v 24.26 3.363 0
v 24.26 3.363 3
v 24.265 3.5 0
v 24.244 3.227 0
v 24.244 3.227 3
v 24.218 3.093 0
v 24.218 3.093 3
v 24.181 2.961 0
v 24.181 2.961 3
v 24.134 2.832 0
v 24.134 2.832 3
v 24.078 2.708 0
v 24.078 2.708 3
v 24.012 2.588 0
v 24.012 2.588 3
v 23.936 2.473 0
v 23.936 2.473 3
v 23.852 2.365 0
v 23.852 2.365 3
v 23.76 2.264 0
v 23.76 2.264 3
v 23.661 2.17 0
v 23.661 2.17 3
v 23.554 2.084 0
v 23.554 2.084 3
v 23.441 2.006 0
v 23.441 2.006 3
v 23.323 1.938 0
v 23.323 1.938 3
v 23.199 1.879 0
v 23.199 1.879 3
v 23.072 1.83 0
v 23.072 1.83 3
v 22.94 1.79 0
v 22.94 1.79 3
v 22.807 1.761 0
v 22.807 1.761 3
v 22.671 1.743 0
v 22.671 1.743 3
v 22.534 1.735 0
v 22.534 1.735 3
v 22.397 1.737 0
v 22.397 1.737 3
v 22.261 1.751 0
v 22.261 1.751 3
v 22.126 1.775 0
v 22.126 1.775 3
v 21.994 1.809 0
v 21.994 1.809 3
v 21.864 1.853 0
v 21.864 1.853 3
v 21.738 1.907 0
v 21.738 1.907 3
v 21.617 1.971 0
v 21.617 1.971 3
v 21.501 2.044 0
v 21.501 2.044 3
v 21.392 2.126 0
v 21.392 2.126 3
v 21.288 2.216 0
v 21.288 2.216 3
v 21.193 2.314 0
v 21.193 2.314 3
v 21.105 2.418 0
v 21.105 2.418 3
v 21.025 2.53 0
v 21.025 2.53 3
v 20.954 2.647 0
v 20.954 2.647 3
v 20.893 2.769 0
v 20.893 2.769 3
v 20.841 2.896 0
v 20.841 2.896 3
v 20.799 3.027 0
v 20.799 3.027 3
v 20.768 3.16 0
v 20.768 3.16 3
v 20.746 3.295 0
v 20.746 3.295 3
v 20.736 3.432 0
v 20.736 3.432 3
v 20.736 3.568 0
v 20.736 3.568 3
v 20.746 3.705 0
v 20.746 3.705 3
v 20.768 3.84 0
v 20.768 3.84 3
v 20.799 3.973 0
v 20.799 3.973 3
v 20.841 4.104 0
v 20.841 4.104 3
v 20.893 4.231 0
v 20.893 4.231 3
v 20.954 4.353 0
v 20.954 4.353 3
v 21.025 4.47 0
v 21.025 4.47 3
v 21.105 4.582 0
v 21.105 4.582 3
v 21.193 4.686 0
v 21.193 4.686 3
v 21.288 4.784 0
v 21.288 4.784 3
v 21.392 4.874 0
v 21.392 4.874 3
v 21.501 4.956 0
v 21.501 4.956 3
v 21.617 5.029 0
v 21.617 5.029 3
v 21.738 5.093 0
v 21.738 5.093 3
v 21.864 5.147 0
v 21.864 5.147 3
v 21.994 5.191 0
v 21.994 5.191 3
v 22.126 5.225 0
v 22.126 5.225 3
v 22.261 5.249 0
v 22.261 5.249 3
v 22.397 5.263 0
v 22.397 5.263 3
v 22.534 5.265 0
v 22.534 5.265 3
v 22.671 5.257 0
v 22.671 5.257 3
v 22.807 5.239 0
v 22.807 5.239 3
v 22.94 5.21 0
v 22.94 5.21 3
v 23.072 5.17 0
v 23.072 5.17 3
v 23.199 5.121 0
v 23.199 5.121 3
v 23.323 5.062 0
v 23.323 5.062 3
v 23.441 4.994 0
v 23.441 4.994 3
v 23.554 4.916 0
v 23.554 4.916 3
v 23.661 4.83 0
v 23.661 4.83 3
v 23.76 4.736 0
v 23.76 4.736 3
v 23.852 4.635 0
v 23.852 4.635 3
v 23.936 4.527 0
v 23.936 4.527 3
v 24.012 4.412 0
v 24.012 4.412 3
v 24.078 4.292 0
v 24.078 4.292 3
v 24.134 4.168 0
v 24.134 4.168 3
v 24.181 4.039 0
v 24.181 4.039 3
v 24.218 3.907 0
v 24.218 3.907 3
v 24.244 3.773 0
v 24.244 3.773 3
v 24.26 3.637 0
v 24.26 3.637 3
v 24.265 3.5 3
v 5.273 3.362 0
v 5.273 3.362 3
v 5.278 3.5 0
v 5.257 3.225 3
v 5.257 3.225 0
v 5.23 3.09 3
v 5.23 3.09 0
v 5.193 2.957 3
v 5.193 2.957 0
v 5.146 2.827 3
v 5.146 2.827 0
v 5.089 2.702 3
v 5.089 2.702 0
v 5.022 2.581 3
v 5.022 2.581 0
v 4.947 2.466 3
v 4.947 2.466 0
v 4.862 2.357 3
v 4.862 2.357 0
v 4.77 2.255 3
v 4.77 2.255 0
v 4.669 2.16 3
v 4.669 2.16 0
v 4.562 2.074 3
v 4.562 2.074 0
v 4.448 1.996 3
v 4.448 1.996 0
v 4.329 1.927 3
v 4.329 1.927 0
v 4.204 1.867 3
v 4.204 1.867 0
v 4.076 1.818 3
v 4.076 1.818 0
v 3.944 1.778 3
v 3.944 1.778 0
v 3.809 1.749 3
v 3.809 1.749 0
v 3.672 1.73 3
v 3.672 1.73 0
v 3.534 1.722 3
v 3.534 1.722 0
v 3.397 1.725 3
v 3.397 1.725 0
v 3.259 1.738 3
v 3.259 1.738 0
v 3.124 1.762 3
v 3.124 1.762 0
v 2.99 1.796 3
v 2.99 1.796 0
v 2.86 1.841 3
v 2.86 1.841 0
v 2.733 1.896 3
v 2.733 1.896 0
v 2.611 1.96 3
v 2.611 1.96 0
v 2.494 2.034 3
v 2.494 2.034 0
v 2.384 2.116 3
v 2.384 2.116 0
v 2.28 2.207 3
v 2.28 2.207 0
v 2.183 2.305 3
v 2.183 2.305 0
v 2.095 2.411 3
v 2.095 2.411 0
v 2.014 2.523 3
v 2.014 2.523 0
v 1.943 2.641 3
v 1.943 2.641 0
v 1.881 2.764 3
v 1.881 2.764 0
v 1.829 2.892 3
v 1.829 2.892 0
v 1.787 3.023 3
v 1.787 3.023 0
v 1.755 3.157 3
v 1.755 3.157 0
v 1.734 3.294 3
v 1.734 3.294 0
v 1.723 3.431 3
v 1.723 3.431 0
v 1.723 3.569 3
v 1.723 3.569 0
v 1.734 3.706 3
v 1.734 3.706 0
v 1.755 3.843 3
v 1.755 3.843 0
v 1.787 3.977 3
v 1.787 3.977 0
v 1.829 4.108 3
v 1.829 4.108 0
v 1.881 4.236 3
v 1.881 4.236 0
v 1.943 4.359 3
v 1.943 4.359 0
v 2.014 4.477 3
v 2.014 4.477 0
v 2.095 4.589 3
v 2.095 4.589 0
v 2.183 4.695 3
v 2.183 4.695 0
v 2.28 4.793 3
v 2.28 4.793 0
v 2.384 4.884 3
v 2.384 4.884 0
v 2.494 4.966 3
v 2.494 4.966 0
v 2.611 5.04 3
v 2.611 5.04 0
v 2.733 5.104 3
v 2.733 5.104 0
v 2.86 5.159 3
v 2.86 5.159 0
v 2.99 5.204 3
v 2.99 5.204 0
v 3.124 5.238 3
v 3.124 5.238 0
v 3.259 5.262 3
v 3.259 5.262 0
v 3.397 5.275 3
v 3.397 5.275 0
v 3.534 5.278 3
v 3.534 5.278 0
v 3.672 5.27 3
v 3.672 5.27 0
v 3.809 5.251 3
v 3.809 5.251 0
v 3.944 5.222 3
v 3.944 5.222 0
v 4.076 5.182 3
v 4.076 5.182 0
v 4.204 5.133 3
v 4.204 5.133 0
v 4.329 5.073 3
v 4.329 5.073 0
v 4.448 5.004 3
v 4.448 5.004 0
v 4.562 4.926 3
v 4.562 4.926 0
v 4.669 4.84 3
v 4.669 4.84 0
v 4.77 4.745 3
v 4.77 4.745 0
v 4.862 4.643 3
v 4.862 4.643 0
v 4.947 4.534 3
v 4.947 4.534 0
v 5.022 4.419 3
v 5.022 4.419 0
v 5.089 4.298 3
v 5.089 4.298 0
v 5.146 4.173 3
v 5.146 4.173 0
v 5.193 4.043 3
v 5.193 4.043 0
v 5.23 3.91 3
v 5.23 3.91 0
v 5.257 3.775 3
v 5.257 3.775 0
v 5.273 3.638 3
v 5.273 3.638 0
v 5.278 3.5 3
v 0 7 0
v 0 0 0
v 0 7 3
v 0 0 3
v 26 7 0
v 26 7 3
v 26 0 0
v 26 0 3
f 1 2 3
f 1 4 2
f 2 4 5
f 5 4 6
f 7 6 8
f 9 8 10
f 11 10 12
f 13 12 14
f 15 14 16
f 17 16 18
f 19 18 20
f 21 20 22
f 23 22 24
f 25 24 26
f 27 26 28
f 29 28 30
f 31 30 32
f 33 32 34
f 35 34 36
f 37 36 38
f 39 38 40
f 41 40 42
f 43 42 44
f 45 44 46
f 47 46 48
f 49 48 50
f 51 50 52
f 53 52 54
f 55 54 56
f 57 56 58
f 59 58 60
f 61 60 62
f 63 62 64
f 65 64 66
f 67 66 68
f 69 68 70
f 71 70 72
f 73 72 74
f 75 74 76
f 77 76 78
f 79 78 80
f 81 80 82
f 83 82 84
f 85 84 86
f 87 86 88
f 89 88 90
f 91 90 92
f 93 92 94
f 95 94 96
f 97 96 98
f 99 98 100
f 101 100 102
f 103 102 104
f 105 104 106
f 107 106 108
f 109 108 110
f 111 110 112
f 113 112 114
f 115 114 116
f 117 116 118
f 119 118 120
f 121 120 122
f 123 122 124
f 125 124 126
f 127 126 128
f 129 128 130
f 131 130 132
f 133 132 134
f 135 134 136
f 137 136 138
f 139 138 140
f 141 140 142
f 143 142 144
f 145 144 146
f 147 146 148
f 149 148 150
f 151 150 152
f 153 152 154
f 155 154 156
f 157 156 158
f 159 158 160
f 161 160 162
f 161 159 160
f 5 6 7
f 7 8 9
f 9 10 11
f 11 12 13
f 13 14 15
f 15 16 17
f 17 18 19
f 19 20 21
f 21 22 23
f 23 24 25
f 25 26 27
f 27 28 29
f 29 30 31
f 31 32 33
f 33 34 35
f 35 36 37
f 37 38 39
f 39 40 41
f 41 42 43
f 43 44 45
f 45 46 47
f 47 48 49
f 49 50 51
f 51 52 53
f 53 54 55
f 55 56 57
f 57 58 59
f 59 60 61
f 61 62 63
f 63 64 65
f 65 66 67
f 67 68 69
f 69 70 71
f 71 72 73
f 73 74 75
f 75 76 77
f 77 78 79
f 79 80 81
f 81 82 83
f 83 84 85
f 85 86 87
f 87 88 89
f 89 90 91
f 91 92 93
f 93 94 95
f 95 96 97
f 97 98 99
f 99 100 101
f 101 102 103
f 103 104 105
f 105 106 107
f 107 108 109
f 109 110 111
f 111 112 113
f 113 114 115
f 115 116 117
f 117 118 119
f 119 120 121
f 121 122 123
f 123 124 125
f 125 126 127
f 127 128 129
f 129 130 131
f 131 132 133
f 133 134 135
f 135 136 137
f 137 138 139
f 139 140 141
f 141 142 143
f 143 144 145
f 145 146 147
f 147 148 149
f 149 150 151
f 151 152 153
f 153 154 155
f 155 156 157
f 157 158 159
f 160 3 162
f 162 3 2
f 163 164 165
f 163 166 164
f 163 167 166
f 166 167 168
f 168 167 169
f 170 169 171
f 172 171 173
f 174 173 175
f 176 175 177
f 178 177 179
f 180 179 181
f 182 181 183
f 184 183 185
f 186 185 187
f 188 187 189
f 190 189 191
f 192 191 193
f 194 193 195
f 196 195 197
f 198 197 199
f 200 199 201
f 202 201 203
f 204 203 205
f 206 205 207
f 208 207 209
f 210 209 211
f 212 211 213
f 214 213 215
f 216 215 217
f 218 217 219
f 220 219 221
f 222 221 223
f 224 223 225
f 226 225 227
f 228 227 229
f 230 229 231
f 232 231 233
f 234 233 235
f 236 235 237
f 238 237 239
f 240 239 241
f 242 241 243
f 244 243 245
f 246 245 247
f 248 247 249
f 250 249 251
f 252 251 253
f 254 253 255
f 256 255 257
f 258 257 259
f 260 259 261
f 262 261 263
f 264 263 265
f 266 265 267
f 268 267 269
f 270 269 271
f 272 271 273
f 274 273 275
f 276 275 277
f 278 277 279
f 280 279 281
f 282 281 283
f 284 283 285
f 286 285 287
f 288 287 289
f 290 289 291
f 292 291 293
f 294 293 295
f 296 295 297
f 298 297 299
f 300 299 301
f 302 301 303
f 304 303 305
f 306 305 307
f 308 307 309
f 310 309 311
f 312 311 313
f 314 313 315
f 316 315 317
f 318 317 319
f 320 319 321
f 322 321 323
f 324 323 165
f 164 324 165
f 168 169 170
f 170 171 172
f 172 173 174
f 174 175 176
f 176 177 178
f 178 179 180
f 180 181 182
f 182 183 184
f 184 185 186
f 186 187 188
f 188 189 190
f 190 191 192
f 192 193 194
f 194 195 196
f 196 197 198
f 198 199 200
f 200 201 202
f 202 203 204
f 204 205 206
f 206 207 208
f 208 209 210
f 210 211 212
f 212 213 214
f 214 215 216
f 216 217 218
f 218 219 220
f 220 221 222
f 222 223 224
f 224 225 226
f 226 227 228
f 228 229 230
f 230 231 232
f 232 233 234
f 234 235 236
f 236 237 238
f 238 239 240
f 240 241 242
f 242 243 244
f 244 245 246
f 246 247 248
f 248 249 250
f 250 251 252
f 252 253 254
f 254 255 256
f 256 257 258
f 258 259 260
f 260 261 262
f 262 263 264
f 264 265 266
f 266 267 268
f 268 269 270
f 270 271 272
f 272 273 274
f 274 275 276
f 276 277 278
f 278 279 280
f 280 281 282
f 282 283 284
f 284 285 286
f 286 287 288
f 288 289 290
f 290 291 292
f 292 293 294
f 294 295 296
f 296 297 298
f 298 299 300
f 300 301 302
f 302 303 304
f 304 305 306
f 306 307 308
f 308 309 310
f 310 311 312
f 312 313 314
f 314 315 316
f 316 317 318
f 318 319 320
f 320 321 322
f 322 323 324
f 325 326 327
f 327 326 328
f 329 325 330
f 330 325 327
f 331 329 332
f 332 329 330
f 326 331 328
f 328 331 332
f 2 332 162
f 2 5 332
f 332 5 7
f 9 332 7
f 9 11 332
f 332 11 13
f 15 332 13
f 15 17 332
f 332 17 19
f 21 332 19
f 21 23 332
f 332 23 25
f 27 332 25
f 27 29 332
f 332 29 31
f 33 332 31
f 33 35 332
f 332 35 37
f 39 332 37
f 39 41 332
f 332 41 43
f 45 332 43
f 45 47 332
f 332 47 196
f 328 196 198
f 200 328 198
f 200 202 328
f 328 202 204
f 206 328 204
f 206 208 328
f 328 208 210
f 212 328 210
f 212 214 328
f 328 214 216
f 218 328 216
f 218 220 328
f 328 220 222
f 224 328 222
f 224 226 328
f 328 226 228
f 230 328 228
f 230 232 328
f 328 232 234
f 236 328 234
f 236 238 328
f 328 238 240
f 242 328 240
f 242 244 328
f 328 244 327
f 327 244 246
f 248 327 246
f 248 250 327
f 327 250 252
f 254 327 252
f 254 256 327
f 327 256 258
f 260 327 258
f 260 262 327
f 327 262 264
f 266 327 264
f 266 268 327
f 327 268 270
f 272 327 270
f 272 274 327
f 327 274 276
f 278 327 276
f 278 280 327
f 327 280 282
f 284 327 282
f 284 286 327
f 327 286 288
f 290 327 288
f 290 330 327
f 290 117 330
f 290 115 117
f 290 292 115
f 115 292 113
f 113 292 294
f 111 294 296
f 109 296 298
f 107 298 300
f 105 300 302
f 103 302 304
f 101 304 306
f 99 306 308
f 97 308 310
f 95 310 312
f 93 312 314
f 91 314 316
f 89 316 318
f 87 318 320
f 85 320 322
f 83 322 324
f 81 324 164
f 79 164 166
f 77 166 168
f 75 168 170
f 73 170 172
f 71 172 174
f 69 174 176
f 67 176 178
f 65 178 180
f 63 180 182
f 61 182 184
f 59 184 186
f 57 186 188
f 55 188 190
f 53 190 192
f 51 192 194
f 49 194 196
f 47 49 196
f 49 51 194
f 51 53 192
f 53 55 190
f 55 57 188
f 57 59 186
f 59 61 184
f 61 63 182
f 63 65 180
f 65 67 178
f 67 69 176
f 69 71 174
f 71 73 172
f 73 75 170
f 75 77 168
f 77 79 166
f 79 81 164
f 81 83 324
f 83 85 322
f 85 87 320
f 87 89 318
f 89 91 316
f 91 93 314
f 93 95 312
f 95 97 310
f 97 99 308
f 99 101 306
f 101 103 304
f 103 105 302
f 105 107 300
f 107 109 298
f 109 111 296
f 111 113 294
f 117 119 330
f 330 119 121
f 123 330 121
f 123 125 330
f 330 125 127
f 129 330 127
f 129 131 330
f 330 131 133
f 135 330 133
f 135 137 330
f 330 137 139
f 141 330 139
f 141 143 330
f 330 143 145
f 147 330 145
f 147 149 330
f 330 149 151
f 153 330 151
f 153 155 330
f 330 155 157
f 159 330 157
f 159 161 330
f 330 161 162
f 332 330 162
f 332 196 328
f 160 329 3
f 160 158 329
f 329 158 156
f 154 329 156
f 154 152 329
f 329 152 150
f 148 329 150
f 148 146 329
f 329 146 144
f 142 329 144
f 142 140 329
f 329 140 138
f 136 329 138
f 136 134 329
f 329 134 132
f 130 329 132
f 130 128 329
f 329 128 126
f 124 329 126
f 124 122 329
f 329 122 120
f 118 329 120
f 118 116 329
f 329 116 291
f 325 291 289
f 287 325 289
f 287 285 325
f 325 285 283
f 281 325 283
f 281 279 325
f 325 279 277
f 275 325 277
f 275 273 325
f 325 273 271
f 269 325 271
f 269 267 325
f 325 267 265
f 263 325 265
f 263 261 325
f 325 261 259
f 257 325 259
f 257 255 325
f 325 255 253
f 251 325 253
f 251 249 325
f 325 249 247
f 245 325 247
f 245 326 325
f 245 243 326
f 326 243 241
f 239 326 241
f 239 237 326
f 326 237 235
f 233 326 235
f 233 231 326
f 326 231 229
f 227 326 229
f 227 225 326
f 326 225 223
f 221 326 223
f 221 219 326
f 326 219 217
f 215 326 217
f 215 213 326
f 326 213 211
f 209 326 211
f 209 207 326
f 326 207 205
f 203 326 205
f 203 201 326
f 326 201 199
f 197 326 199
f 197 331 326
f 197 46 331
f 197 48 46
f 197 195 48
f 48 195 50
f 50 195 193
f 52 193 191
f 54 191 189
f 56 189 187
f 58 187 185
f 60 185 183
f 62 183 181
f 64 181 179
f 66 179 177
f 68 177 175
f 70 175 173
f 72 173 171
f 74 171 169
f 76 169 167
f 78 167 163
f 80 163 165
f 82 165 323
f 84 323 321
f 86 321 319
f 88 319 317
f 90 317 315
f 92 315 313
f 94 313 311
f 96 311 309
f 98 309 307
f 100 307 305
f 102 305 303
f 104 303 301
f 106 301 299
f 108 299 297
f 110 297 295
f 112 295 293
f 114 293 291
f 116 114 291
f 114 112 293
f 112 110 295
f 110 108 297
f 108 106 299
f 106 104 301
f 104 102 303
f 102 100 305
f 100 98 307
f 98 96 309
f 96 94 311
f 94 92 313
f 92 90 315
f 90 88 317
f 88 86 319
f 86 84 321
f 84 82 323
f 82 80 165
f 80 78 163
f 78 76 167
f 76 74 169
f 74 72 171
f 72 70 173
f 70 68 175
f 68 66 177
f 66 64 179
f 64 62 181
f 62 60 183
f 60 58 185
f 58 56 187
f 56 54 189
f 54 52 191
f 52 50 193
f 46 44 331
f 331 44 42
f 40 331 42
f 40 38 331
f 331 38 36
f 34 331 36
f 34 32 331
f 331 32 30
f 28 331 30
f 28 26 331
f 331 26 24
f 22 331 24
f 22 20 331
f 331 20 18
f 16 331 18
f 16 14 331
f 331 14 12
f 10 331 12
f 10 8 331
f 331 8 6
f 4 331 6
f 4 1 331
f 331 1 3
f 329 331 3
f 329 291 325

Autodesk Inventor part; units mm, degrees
ref_plane "YZ Plane" through (0, 0, 0) normal (1, 0, 0) x (0, 1, 0)
ref_plane "XZ Plane" through (0, 0, 0) normal (0, 1, 0) x (-1, 0, 0)
ref_plane "XY Plane" through (0, 0, 0) normal (0, 0, 1) x (1, 0, 0)
sketch "Sketch1" plane through (0, 0, 0) normal (0, 0, 1) x (1, 0, 0)
  line L0 (0, 0) -> (26, 0)
  line L1 (26, 0) -> (26, 7)
  line L2 (26, 7) -> (0, 7)
  line L3 (0, 7) -> (0, 0)
  dimension "d0" = 26
  dimension "d1" = 7
extrude "Extrusion1" add sketch "Sketch1" along normal blind 3
sketch "Sketch2" plane through (0, 0, 3) normal (0, 0, 1) x (1, 0, 0)
  line L0 (0, 0) -> (26, 0) projected
  line L1 (26, 7) -> (0, 7) projected
  line L2 (0, 7) -> (3.5739, 7)
  line L3 (3.5739, 0) -> (0, 0)
  line L4 (0, 0) -> (0, 7)
  line L5 (3.5739, 0) -> (22.546, 0)
  line L6 (22.546, 7) -> (3.5739, 7)
  line L7 (22.546, 7) -> (26, 7)
  line L8 (26, 7) -> (26, 0)
  line L9 (26, 0) -> (22.546, 0)
  line L10 (0, 0) -> (3.4896, 0)
  line L11 (3.4896, 7) -> (0, 7)
  line L12 (0, 7) -> (0, 0)
  line L13 (3.4896, 7) -> (22.4896, 7)
  line L14 (22.4896, 0) -> (3.4896, 0)
  line L15 (22.4896, 0) -> (26, 0)
  line L16 (26, 0) -> (26, 7)
  line L17 (26, 7) -> (22.4896, 7)
  line L18 (0, 0) -> (3.5, 0)
  line L19 (3.5, 0) -> (3.5, 7)
  line L20 (3.5, 7) -> (0, 7)
  line L21 (0, 7) -> (0, 0)
  line L22 (3.5, 0) -> (22.5, 0)
  line L23 (22.5, 0) -> (22.5, 7)
  line L24 (22.5, 7) -> (3.5, 7)
  line L25 (3.5, 7) -> (3.5, 0)
  line L26 (26, 0) -> (22.5, 0)
  line L27 (22.5, 0) -> (22.5, 3.5)
  line L28 (22.5, 3.5) -> (26, 3.5)
  line L29 (26, 3.5) -> (26, 0)
  circle A0 centre (3.5, 3.5) radius 1.7782
  circle A1 centre (22.5, 3.5) radius 1.7655
  dimension "d13" = 3.5
  dimension "d14" = 19
  dimension "d15" = 3.5564
  dimension "d16" = 3.531
extrude "Extrusion2" cut sketch "Sketch2" against normal blind 4.25 contours A0 L19 | L19 A0 | A1 L23 | L23 L28 A1 | L23 A1 L28
properties part number "Transmitter clamp"
